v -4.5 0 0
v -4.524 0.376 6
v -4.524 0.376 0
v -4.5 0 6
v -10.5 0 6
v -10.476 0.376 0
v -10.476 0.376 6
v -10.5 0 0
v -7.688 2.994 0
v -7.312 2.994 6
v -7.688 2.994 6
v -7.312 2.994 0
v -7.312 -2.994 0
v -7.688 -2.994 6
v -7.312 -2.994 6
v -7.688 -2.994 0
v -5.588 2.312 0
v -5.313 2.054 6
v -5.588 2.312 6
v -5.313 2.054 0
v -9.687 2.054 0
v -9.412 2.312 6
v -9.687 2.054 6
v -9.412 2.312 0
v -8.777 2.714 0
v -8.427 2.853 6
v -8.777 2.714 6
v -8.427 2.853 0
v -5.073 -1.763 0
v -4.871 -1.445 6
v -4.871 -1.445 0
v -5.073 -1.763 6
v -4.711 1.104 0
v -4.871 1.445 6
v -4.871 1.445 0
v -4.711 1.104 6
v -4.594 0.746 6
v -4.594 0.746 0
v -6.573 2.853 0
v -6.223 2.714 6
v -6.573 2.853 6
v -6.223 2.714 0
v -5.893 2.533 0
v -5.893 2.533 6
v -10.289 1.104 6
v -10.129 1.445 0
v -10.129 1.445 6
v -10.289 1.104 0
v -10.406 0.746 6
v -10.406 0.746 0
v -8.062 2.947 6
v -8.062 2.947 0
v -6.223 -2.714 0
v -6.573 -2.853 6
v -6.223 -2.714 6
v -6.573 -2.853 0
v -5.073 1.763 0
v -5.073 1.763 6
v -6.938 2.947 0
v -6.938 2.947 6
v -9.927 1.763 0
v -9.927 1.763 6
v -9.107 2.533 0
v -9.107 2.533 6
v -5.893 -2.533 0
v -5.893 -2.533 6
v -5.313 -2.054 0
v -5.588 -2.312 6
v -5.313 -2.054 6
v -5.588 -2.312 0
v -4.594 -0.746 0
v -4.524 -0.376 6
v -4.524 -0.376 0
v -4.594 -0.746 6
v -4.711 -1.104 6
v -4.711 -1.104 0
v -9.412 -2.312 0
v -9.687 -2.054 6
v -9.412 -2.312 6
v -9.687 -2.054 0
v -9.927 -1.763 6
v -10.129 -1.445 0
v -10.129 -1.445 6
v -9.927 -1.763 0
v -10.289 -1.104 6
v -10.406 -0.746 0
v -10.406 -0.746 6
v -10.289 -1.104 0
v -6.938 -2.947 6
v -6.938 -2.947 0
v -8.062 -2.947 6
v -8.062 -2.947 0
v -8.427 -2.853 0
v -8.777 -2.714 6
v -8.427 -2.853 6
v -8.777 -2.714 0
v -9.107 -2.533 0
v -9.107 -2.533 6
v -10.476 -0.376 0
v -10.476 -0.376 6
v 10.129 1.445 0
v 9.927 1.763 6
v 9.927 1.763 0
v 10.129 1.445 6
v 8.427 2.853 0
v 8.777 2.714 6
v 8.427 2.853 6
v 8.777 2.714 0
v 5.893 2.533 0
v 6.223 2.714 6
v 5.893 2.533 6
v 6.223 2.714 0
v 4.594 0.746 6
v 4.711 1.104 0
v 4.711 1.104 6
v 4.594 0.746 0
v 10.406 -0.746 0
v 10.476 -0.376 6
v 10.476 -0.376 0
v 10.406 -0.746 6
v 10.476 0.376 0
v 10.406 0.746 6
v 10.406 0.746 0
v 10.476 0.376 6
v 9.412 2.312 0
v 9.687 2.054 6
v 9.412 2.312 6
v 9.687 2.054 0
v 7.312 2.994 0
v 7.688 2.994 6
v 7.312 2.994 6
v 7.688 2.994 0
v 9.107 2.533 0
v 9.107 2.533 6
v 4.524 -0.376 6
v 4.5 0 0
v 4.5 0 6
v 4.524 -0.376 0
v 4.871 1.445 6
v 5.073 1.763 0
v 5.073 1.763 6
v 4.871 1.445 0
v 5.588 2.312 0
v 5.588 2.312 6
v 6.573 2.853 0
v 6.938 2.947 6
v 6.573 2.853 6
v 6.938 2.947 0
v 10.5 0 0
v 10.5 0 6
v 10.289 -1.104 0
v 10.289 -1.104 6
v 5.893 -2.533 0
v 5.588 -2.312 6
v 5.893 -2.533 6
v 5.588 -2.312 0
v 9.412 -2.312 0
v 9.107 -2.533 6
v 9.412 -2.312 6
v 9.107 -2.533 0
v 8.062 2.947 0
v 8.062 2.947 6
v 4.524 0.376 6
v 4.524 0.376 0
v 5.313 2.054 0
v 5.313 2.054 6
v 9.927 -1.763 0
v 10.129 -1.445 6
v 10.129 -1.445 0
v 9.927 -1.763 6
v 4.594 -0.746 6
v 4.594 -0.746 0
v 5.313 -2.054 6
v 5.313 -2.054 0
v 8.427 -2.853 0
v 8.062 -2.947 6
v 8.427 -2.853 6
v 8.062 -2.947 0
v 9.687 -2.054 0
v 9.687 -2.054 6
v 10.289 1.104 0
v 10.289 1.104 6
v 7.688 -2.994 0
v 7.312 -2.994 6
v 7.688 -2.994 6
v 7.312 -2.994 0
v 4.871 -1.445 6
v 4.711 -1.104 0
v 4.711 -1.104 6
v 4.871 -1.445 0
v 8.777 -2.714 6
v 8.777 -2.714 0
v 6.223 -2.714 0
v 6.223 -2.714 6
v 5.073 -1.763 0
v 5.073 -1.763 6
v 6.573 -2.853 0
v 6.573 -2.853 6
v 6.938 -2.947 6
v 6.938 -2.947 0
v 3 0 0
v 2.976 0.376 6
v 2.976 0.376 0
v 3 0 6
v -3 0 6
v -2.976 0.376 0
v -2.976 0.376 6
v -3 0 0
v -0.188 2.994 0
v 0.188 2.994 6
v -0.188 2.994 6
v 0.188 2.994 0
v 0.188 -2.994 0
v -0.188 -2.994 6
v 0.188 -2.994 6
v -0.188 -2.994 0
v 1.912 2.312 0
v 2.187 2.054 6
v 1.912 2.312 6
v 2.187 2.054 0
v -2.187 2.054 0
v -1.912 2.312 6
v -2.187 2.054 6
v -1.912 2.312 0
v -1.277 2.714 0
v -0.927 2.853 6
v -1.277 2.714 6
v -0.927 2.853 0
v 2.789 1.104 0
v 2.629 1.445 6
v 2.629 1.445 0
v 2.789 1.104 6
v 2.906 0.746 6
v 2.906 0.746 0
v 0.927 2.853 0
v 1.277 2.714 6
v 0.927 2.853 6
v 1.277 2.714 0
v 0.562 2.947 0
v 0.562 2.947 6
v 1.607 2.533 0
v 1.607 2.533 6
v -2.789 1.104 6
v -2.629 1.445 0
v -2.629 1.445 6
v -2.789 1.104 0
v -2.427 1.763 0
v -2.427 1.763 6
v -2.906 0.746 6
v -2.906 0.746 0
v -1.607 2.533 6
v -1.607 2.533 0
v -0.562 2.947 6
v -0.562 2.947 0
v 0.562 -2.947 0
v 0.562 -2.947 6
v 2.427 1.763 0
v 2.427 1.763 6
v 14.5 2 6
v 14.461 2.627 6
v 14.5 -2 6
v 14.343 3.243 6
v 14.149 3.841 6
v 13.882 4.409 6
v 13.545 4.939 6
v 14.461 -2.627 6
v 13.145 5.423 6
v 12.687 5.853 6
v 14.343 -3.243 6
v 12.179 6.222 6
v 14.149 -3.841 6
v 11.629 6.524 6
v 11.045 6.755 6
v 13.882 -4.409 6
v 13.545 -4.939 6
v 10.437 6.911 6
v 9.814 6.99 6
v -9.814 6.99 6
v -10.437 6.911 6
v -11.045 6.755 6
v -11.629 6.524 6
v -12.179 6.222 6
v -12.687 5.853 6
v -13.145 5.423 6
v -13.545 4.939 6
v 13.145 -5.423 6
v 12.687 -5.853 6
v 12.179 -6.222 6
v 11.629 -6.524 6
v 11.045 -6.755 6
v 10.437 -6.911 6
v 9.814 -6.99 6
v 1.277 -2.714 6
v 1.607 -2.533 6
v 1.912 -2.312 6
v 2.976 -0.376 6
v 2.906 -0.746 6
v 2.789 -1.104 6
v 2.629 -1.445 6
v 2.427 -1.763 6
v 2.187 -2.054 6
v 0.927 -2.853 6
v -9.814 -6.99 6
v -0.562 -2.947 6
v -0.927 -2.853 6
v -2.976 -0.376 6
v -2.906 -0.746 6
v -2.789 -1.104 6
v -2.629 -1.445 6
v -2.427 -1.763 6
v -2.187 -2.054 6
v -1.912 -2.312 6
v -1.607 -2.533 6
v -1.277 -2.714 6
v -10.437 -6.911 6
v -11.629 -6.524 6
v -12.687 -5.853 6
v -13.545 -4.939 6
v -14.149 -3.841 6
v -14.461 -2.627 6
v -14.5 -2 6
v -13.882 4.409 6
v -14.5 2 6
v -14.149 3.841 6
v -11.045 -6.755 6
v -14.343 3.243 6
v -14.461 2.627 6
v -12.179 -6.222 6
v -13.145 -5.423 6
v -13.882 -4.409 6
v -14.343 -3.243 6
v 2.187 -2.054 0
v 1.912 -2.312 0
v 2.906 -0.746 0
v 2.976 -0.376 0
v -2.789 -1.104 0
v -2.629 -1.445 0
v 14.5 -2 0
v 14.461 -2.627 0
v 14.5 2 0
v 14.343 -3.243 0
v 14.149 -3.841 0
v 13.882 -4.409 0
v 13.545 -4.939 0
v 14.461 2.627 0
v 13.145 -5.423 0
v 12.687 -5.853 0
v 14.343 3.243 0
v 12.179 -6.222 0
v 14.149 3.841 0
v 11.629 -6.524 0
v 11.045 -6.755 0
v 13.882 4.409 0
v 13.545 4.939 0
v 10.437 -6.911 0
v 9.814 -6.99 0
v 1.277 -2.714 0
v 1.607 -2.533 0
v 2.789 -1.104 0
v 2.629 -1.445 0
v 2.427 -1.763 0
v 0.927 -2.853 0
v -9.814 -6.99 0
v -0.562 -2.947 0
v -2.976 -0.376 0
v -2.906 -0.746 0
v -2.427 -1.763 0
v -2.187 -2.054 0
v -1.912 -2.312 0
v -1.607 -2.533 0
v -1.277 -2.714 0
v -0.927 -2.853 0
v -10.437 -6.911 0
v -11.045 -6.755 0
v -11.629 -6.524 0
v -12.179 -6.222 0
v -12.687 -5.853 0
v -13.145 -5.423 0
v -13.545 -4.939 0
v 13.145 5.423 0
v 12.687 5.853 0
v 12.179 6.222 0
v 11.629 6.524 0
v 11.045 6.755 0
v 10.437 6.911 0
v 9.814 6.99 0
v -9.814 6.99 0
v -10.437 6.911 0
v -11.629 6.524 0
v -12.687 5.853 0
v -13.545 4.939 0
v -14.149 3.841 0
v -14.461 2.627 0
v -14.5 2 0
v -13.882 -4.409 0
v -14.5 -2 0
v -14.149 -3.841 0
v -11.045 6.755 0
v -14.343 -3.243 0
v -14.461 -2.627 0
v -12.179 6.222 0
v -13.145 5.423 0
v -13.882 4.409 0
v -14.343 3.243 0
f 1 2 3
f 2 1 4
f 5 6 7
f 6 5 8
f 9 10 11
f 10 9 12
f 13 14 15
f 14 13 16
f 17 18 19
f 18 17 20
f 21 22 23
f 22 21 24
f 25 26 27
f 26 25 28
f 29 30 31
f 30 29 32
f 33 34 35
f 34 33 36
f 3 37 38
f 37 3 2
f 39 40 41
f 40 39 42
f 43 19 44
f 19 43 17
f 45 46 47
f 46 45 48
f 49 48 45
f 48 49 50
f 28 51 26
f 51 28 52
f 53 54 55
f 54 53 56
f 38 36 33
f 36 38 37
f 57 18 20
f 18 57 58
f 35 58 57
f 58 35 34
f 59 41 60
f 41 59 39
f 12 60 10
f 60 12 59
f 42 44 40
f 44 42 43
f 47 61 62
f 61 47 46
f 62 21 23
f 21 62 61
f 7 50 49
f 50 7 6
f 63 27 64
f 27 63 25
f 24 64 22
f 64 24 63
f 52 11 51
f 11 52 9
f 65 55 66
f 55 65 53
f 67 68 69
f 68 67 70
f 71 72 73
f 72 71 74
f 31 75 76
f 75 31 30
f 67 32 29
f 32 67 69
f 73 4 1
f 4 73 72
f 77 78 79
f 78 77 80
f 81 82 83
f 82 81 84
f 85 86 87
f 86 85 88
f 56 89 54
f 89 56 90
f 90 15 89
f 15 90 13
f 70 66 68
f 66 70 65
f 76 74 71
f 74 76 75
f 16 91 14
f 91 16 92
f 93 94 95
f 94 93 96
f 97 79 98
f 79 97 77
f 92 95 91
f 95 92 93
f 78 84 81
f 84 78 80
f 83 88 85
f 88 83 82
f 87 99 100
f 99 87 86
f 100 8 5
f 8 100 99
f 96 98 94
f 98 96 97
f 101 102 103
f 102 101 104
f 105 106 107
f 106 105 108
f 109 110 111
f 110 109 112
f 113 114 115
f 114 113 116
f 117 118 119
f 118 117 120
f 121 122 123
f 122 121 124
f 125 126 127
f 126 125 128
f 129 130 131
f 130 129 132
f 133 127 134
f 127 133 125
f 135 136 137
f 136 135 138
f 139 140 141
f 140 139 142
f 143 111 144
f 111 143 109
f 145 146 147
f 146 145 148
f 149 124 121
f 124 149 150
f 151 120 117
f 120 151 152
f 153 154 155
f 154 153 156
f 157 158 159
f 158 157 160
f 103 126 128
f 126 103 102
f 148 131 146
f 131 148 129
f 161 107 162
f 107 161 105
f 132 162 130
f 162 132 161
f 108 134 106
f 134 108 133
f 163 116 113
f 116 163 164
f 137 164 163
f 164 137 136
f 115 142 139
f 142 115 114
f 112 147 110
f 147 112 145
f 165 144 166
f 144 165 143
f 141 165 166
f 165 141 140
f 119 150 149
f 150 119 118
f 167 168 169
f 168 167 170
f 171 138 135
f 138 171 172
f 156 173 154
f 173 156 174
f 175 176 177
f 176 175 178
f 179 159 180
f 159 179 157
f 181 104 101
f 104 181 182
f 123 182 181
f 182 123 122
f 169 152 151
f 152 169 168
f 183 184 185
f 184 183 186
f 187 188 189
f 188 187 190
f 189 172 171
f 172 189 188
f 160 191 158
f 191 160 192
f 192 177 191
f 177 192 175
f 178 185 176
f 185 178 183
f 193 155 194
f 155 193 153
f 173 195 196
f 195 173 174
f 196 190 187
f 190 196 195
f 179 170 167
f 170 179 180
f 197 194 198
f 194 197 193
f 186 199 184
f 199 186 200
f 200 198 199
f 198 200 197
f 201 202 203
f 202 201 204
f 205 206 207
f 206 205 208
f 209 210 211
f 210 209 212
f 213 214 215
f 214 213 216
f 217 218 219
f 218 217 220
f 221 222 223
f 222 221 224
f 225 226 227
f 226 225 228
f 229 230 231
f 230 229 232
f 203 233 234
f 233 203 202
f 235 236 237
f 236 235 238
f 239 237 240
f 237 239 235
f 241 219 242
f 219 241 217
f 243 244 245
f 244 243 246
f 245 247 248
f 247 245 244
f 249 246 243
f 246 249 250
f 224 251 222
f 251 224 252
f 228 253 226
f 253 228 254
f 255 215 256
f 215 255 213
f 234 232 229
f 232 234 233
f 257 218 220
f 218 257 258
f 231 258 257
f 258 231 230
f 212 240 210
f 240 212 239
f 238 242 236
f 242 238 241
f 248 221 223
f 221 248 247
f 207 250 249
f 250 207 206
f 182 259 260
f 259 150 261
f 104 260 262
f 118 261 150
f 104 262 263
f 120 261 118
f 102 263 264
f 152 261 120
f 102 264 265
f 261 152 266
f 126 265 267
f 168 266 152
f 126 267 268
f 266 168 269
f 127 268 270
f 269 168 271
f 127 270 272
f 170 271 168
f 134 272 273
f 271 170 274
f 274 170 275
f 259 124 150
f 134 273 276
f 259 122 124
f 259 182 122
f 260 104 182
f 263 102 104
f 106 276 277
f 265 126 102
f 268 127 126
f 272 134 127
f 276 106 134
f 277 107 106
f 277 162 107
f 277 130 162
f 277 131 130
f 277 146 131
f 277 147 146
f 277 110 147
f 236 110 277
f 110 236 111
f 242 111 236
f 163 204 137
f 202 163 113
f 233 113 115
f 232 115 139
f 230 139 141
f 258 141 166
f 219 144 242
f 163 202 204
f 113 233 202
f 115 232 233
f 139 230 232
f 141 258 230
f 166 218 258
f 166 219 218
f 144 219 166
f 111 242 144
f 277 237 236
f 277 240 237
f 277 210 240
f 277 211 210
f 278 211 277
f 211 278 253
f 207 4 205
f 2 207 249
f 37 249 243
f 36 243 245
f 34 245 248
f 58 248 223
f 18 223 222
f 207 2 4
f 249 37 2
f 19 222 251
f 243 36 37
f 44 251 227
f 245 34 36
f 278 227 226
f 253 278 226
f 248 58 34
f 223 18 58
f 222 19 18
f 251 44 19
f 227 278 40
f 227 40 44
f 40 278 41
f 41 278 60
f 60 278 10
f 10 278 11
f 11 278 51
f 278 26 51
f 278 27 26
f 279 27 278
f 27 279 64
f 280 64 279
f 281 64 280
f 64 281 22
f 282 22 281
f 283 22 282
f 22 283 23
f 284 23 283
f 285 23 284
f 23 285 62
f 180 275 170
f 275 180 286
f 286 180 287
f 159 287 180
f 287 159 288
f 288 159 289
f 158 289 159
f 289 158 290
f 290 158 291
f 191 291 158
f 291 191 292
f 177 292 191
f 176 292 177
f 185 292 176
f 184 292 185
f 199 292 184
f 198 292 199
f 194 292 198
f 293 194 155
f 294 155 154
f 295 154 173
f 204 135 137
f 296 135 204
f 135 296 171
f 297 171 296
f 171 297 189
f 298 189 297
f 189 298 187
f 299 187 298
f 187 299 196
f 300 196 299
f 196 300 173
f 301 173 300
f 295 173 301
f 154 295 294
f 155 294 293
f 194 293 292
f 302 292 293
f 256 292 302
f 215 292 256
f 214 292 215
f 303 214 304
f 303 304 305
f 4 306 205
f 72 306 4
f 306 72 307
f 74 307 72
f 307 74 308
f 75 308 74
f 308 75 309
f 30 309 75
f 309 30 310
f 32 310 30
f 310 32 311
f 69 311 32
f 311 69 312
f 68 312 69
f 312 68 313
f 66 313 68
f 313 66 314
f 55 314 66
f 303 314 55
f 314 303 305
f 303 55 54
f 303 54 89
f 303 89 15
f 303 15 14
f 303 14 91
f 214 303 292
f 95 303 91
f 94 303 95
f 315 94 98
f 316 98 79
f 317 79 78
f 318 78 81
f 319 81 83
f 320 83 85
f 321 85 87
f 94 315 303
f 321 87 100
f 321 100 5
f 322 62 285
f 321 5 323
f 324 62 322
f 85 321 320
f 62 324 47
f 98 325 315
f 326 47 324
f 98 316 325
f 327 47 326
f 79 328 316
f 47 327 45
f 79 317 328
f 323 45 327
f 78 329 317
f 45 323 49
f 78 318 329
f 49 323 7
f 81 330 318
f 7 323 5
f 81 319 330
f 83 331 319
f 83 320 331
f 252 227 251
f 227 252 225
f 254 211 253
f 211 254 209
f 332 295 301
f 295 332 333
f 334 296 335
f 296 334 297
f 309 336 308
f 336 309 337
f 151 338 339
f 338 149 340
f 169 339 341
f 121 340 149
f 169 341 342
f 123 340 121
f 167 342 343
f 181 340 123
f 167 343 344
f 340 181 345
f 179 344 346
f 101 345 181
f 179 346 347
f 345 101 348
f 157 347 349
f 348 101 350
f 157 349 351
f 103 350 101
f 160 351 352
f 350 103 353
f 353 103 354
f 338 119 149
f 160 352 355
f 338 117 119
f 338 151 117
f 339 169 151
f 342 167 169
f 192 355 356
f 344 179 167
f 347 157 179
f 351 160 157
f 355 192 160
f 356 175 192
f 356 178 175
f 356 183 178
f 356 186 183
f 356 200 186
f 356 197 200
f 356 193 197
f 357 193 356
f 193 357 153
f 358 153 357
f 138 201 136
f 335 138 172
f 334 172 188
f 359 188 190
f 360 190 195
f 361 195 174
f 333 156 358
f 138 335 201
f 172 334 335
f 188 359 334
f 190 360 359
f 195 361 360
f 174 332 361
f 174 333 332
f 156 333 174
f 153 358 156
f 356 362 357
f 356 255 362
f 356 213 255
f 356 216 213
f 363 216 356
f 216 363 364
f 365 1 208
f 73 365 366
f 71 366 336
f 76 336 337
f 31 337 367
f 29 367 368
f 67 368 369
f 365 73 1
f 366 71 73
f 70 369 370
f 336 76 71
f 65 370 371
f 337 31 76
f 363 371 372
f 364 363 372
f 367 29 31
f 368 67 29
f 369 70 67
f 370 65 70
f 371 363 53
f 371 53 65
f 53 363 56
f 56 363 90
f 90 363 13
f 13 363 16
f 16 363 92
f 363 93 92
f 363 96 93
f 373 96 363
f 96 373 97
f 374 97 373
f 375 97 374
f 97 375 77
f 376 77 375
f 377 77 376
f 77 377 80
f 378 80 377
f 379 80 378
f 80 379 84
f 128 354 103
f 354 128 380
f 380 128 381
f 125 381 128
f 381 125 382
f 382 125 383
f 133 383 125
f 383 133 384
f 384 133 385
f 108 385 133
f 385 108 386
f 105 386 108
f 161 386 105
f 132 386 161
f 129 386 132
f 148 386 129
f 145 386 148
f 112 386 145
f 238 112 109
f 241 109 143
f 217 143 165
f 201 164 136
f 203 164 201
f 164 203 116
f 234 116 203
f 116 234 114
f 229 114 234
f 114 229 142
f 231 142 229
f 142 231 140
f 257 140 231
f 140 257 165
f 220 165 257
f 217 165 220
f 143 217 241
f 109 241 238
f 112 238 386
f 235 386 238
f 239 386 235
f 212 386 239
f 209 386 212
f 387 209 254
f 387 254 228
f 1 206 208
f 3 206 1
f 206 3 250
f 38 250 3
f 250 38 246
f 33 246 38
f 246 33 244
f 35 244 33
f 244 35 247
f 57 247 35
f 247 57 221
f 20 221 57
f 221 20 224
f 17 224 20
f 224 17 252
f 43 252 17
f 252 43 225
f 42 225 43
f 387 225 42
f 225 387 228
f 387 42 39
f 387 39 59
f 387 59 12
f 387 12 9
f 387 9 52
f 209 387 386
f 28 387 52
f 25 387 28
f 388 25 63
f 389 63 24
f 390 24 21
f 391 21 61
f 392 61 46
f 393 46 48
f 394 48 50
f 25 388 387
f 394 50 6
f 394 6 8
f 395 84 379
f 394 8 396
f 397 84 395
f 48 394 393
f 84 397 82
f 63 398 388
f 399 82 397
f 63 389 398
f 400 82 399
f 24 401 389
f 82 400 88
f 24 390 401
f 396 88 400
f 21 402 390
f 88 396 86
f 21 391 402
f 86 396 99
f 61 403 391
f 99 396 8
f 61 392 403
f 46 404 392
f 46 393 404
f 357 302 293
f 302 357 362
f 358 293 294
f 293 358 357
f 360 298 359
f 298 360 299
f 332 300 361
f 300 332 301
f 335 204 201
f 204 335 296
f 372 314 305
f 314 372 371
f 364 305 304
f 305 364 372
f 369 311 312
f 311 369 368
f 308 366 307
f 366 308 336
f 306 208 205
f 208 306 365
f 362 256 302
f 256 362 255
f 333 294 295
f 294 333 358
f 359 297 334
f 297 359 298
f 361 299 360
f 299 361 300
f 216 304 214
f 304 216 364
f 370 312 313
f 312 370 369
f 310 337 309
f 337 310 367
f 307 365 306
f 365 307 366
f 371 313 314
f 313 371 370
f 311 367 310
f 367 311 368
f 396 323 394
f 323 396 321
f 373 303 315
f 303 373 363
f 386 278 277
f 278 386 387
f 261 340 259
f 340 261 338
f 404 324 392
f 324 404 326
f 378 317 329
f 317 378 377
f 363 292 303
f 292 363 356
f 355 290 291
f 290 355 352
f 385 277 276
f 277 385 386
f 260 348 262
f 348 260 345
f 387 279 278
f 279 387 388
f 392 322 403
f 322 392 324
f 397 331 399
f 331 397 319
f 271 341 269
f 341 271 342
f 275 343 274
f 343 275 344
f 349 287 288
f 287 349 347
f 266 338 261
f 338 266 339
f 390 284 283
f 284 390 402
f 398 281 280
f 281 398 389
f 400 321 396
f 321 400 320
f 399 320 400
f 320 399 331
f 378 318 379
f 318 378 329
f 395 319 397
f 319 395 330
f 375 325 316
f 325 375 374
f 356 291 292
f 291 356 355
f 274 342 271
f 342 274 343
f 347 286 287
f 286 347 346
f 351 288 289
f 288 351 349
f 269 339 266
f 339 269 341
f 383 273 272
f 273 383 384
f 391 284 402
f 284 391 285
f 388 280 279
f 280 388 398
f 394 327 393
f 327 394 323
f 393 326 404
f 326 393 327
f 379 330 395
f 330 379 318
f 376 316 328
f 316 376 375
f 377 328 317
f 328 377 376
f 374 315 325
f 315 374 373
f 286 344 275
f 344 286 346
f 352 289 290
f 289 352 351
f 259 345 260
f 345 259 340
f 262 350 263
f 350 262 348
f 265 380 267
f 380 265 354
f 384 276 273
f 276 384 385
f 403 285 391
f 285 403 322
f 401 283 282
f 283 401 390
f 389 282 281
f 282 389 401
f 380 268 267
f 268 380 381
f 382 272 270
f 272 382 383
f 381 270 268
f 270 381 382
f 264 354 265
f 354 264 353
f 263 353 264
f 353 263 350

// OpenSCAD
$fn = 50;


difference() {
	union() {
		hull() {
			translate(v = [-9.5000000000, 2.0000000000, 0]) {
				cylinder(h = 6, r = 5);
			}
			translate(v = [9.5000000000, 2.0000000000, 0]) {
				cylinder(h = 6, r = 5);
			}
			translate(v = [-9.5000000000, -2.0000000000, 0]) {
				cylinder(h = 6, r = 5);
			}
			translate(v = [9.5000000000, -2.0000000000, 0]) {
				cylinder(h = 6, r = 5);
			}
		}
	}
	union() {
		#translate(v = [-7.5000000000, 0.0000000000, 0]) {
			cylinder(h = 6, r = 3.0000000000);
		}
		#translate(v = [7.5000000000, 0.0000000000, 0]) {
			cylinder(h = 6, r = 3.0000000000);
		}
		#translate(v = [-7.5000000000, 0.0000000000, -100.0000000000]) {
			cylinder(h = 200, r = 3.0000000000);
		}
		#translate(v = [-7.5000000000, 0.0000000000, -100.0000000000]) {
			cylinder(h = 200, r = 3.0000000000);
		}
		#translate(v = [7.5000000000, 0.0000000000, -100.0000000000]) {
			cylinder(h = 200, r = 3.0000000000);
		}
		#translate(v = [7.5000000000, 0.0000000000, -100.0000000000]) {
			cylinder(h = 200, r = 3.0000000000);
		}
		#translate(v = [-7.5000000000, 0.0000000000, 0]) {
			cylinder(h = 6, r = 1.5000000000);
		}
		#translate(v = [7.5000000000, 0.0000000000, 0]) {
			cylinder(h = 6, r = 1.5000000000);
		}
		#translate(v = [-7.5000000000, 0.0000000000, 0]) {
			cylinder(h = 6, r = 1.5000000000);
		}
		#translate(v = [7.5000000000, 0.0000000000, 0]) {
			cylinder(h = 6, r = 1.5000000000);
		}
		#translate(v = [-7.5000000000, 0.0000000000, 0]) {
			cylinder(h = 6, r = 1.5000000000);
		}
		#translate(v = [7.5000000000, 0.0000000000, 0]) {
			cylinder(h = 6, r = 1.5000000000);
		}
		#cylinder(h = 6, r = 3.0000000000);
	}
}
